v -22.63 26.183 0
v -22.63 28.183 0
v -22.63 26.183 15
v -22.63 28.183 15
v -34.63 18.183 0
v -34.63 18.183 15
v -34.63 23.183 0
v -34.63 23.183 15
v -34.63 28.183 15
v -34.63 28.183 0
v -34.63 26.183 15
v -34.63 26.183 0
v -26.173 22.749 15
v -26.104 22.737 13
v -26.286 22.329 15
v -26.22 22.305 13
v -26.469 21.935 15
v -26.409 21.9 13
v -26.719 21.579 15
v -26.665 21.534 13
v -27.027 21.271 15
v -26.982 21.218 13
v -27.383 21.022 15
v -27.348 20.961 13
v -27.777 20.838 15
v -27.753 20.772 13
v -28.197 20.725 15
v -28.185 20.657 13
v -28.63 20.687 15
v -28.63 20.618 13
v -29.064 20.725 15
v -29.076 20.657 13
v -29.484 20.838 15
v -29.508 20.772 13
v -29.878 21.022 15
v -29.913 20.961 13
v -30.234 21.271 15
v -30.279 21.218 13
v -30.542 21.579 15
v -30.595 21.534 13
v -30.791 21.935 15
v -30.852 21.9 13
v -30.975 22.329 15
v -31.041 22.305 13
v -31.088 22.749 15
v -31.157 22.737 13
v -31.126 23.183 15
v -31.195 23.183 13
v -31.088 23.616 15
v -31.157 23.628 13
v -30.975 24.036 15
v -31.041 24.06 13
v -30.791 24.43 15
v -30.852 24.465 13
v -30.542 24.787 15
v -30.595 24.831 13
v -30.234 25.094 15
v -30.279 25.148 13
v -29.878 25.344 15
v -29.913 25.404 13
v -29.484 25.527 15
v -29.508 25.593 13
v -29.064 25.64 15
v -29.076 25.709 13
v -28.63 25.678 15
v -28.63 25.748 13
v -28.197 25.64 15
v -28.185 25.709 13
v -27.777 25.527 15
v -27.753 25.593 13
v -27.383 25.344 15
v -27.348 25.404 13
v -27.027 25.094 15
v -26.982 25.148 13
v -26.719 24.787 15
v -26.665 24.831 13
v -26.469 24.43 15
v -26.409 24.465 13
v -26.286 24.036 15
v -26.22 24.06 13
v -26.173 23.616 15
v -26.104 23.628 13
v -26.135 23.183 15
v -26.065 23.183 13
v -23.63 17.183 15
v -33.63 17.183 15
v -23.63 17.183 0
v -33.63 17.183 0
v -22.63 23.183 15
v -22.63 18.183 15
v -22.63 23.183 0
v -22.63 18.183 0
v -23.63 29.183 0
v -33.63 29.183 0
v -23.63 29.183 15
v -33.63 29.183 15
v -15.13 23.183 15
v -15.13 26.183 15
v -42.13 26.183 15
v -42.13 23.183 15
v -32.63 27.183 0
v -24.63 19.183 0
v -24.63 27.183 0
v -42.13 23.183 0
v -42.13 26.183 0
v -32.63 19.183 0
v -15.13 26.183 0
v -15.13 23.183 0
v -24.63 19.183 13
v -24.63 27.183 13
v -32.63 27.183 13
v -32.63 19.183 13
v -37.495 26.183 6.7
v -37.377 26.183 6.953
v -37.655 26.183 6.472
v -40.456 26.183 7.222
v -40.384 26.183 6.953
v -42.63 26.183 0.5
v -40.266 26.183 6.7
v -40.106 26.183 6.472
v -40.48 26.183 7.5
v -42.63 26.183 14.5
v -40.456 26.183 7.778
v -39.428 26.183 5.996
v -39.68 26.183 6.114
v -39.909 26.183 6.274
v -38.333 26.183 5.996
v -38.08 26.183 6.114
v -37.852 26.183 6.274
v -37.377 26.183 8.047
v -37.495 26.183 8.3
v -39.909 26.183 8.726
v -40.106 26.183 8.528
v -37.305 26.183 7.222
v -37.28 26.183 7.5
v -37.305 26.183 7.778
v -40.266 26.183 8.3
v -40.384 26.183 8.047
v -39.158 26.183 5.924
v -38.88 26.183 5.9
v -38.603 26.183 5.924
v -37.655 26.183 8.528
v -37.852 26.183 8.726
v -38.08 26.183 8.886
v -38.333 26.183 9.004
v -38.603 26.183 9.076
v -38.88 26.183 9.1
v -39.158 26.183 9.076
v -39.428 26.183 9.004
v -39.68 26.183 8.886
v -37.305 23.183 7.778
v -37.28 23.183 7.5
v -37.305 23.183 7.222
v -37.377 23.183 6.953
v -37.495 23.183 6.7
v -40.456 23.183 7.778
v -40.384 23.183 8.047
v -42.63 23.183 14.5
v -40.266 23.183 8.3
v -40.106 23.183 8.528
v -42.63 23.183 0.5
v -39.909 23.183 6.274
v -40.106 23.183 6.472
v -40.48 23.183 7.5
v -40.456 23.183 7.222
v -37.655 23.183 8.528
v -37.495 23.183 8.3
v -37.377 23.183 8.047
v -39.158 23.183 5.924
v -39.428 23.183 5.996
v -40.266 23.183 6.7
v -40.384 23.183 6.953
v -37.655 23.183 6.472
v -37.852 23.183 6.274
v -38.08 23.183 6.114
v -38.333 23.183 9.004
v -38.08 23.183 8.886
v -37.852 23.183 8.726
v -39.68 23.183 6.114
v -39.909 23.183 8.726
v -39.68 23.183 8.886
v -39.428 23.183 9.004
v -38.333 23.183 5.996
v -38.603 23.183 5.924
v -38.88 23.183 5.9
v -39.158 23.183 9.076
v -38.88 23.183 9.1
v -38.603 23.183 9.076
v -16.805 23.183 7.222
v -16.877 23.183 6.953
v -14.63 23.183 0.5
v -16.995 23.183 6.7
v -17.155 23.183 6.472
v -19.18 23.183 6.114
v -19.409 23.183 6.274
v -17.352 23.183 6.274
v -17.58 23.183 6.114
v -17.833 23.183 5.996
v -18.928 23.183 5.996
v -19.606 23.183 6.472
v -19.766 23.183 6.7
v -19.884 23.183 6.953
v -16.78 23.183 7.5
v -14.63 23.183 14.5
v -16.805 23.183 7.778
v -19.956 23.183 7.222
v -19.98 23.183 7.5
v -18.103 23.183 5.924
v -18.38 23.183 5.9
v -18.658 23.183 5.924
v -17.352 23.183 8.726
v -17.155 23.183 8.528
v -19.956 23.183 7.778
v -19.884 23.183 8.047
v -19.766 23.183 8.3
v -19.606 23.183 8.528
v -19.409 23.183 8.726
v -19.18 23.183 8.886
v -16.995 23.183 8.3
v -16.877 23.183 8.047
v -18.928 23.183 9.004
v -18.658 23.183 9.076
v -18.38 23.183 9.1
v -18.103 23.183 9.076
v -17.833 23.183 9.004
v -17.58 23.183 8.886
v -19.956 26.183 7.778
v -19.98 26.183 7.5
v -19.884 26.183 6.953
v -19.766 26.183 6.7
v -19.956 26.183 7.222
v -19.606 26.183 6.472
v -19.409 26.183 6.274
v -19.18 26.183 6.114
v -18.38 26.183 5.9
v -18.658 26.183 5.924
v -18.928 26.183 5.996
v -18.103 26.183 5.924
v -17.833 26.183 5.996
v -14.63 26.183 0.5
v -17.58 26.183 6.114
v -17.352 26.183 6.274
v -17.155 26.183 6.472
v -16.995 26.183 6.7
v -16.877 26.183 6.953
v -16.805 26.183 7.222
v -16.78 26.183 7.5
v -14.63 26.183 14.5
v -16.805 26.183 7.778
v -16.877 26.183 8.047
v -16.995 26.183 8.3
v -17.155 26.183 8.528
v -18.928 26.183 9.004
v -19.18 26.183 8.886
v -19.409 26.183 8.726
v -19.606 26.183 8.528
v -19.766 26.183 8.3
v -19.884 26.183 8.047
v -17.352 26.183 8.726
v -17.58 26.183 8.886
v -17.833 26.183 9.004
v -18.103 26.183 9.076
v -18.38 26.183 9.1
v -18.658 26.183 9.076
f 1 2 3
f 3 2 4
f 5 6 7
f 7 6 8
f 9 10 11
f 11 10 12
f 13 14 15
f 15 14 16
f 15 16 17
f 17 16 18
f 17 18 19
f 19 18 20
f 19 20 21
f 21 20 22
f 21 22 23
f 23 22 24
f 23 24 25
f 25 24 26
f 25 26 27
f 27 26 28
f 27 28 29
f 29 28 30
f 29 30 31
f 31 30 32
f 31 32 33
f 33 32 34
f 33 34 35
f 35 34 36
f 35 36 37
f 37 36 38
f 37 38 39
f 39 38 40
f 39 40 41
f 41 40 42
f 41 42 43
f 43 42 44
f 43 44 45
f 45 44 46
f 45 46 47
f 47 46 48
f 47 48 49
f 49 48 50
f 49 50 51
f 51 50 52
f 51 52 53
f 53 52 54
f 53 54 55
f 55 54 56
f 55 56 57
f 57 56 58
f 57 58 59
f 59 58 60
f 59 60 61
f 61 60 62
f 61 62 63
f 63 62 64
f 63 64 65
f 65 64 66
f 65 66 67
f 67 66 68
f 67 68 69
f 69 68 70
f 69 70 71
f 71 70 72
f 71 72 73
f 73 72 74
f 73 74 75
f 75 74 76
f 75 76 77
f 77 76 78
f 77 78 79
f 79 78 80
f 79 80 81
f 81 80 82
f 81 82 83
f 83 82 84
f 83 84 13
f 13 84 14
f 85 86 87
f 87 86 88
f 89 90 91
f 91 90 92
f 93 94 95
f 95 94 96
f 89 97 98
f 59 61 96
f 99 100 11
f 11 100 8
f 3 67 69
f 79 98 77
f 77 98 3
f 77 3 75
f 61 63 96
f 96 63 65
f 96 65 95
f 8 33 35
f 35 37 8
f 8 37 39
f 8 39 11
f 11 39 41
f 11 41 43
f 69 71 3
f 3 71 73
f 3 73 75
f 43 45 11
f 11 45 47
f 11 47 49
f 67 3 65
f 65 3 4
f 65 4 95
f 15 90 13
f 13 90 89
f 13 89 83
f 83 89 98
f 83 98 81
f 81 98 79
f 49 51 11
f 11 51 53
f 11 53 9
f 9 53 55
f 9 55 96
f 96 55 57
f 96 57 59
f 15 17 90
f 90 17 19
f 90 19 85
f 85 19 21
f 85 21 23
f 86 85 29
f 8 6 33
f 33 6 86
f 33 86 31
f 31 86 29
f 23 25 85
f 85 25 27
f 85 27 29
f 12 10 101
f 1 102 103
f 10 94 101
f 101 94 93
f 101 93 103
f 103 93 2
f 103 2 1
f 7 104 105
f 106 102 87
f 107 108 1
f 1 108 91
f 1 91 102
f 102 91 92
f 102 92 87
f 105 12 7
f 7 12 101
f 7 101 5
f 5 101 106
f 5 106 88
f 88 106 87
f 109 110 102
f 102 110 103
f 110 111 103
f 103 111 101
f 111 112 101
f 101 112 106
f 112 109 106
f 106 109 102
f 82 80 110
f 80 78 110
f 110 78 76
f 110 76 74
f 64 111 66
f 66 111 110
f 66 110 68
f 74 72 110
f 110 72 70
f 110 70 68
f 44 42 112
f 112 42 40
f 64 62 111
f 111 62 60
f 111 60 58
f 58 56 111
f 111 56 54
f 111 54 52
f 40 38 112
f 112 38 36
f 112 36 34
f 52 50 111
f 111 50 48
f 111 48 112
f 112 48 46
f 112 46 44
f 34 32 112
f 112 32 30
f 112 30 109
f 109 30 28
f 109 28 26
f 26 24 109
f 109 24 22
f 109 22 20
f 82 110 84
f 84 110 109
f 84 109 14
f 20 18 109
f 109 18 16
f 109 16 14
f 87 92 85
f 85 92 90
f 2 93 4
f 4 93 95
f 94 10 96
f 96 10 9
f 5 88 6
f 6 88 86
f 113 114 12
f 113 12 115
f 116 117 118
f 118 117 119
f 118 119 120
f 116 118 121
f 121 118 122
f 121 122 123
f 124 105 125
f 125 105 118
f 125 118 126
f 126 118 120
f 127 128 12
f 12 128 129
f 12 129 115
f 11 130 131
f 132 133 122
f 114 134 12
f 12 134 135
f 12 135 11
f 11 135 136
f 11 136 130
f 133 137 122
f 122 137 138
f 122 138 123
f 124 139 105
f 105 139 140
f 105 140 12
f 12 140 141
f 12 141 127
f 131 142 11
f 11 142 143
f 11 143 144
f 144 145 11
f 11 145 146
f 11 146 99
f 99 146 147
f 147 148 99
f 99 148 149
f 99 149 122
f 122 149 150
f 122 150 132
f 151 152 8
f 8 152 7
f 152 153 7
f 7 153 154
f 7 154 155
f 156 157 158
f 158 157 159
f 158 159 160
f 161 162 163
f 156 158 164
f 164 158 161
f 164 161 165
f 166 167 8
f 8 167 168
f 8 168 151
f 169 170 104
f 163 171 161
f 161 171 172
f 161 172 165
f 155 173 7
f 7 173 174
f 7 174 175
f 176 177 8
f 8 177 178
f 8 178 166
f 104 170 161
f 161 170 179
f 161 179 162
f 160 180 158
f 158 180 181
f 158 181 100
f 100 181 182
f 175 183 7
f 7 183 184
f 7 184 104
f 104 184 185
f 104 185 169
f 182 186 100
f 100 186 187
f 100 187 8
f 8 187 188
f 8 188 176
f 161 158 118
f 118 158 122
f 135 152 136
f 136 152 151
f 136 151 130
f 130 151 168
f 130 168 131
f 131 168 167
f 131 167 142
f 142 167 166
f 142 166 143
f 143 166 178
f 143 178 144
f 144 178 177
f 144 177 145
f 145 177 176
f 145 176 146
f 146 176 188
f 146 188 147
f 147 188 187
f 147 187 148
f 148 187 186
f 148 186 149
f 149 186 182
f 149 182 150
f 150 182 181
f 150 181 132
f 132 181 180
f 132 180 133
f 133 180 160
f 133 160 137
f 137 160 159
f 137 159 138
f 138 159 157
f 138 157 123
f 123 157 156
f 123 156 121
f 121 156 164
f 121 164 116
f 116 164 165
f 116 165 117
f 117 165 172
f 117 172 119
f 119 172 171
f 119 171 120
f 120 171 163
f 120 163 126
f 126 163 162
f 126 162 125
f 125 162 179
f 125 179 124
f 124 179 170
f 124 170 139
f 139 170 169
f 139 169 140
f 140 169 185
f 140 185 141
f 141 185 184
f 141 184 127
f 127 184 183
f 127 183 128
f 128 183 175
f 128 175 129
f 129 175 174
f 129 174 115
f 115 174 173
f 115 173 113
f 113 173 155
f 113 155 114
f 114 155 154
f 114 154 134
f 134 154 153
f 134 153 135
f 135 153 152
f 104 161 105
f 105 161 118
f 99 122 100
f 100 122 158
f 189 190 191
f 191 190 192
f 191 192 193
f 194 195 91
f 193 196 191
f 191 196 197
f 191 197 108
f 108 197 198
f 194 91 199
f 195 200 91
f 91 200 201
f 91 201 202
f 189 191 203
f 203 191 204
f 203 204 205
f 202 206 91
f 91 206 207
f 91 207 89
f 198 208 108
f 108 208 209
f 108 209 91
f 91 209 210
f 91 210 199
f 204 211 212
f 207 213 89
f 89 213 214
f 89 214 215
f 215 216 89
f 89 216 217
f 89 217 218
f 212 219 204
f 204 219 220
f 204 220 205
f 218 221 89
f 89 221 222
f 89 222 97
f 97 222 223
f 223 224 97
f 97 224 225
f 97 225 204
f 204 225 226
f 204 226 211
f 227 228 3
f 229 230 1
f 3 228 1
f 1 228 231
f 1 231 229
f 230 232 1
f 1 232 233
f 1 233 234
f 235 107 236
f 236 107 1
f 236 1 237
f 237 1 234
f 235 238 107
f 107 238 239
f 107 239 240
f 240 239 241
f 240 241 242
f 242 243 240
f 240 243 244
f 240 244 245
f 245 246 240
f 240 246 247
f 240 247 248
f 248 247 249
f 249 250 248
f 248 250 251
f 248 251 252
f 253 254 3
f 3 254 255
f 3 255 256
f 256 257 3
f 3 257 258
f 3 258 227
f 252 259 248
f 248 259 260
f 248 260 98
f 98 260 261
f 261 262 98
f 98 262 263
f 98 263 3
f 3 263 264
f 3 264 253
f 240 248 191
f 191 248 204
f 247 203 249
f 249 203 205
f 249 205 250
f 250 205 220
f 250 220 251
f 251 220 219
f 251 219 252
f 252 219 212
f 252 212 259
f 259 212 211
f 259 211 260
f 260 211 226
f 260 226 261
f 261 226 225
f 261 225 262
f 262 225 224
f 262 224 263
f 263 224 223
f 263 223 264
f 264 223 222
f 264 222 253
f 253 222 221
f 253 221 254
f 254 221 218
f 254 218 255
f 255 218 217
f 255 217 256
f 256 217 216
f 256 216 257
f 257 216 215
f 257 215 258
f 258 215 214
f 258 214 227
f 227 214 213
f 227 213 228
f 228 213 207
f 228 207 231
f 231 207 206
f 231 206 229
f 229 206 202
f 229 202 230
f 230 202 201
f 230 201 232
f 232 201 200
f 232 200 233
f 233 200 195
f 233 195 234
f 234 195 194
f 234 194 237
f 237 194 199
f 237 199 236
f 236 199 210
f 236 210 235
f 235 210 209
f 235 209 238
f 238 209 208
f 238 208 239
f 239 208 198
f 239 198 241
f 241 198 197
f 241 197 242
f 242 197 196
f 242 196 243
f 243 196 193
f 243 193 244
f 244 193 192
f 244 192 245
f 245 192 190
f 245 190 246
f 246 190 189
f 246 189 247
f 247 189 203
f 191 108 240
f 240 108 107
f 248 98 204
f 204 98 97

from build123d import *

# Parameters (mm, degrees)
ESQUISSE1_W                  = 12
ESQUISSE1_H                  = 12
BOSS_EXTRU_1_DEPTH           = 15
ENL_V_START                  = -3
ESQUISSE2_R                  = 2.6
ENL_V_MAT_EXTRU_1_DEPTH      = 51.706317156
ENL_V_MAT_EXTRU_1_TAPER      = 2
ESQUISSE3_W                  = 8
ESQUISSE3_H                  = 8
ENL_V_MAT_EXTRU_2_DEPTH      = 13
CHANFREIN1_SIZE              = 1
ESQUISSE4_W                  = 15
ESQUISSE4_H                  = 3
BOSS_EXTRU_2_DEPTH           = 8
ESQUISSE5_R                  = 1.6
ENL_V_MAT_EXTRU_3_DEPTH      = 46.588944696
CHANFREIN2_SIZE              = 0.5
CHANFREIN2_OF_SYM_TRIE1_SIZE = 0.5


with BuildPart() as part:
    # Esquisse1 → Boss.-Extru.1 (new body)
    with BuildSketch(Plane.XY):
        with Locations((-28.630410255, 23.182655502)):
            Rectangle(ESQUISSE1_W, ESQUISSE1_H)
    extrude(amount=BOSS_EXTRU_1_DEPTH)

    # Esquisse2 → Enlèv. mat.-Extru.1 (cut, through all)
    with BuildSketch(Plane.XY.offset(15).offset(ENL_V_START)):
        with Locations((-28.630410255, 23.182655502)):
            Circle(ESQUISSE2_R)
    extrude(amount=ENL_V_MAT_EXTRU_1_DEPTH, taper=ENL_V_MAT_EXTRU_1_TAPER, mode=Mode.SUBTRACT)

    # Esquisse3 → Enlèv. mat.-Extru.2 (cut)
    with BuildSketch(Plane(origin=(0, 0, 0), x_dir=(-1, 0, 0), z_dir=(0, 0, -1))):
        with Locations((28.630410255, 23.182655502)):
            Rectangle(ESQUISSE3_W, ESQUISSE3_H)
    extrude(amount=-ENL_V_MAT_EXTRU_2_DEPTH, mode=Mode.SUBTRACT)

    # Chanfrein1
    chanfrein1_edges = [part.edges().sort_by_distance(p)[0] for p in [
        (-34.630410255, 29.182655502, 7.5),
        (-22.630410255, 29.182655502, 7.5),
        (-22.630410255, 17.182655502, 7.5),
        (-34.630410255, 17.182655502, 7.5),
    ]]
    chamfer(chanfrein1_edges, length=CHANFREIN1_SIZE)

    # Esquisse4 → Boss.-Extru.2 (add)
    with BuildSketch(Plane.ZY.offset(34.630410255)):
        with Locations((7.5, 24.682655502)):
            Rectangle(ESQUISSE4_W, ESQUISSE4_H)
    boss_extru_2 = extrude(amount=BOSS_EXTRU_2_DEPTH)

    # Esquisse5 → Enlèv. mat.-Extru.3 (cut, through all)
    with BuildSketch(Plane.XZ.offset(-23.182655502)):
        with Locations((-38.880410255, 7.5)):
            Circle(ESQUISSE5_R)
    enl_v_mat_extru_3 = extrude(amount=-ENL_V_MAT_EXTRU_3_DEPTH, mode=Mode.SUBTRACT)

    # Chanfrein2
    chanfrein2_edges = [part.edges().sort_by_distance(p)[0] for p in [
        (-42.630410255, 24.682655502, 15),
        (-42.630410255, 24.682655502, 0),
    ]]
    chamfer(chanfrein2_edges, length=CHANFREIN2_SIZE)

    # Symétrie1: Boss.-Extru.2, Enlèv. mat.-Extru.3 across plane
    add(boss_extru_2.mirror(Plane.ZY.offset(28.630410255)))
    add(enl_v_mat_extru_3.mirror(Plane.ZY.offset(28.630410255)), mode=Mode.SUBTRACT)

    # Chanfrein2 of Symétrie1
    chanfrein2_of_sym_trie1_edges = [part.edges().sort_by_distance(p)[0] for p in [
        (-14.630410255, 24.682655502, 15),
        (-14.630410255, 24.682655502, 0),
    ]]
    chamfer(chanfrein2_of_sym_trie1_edges, length=CHANFREIN2_OF_SYM_TRIE1_SIZE)


solid = part.part
